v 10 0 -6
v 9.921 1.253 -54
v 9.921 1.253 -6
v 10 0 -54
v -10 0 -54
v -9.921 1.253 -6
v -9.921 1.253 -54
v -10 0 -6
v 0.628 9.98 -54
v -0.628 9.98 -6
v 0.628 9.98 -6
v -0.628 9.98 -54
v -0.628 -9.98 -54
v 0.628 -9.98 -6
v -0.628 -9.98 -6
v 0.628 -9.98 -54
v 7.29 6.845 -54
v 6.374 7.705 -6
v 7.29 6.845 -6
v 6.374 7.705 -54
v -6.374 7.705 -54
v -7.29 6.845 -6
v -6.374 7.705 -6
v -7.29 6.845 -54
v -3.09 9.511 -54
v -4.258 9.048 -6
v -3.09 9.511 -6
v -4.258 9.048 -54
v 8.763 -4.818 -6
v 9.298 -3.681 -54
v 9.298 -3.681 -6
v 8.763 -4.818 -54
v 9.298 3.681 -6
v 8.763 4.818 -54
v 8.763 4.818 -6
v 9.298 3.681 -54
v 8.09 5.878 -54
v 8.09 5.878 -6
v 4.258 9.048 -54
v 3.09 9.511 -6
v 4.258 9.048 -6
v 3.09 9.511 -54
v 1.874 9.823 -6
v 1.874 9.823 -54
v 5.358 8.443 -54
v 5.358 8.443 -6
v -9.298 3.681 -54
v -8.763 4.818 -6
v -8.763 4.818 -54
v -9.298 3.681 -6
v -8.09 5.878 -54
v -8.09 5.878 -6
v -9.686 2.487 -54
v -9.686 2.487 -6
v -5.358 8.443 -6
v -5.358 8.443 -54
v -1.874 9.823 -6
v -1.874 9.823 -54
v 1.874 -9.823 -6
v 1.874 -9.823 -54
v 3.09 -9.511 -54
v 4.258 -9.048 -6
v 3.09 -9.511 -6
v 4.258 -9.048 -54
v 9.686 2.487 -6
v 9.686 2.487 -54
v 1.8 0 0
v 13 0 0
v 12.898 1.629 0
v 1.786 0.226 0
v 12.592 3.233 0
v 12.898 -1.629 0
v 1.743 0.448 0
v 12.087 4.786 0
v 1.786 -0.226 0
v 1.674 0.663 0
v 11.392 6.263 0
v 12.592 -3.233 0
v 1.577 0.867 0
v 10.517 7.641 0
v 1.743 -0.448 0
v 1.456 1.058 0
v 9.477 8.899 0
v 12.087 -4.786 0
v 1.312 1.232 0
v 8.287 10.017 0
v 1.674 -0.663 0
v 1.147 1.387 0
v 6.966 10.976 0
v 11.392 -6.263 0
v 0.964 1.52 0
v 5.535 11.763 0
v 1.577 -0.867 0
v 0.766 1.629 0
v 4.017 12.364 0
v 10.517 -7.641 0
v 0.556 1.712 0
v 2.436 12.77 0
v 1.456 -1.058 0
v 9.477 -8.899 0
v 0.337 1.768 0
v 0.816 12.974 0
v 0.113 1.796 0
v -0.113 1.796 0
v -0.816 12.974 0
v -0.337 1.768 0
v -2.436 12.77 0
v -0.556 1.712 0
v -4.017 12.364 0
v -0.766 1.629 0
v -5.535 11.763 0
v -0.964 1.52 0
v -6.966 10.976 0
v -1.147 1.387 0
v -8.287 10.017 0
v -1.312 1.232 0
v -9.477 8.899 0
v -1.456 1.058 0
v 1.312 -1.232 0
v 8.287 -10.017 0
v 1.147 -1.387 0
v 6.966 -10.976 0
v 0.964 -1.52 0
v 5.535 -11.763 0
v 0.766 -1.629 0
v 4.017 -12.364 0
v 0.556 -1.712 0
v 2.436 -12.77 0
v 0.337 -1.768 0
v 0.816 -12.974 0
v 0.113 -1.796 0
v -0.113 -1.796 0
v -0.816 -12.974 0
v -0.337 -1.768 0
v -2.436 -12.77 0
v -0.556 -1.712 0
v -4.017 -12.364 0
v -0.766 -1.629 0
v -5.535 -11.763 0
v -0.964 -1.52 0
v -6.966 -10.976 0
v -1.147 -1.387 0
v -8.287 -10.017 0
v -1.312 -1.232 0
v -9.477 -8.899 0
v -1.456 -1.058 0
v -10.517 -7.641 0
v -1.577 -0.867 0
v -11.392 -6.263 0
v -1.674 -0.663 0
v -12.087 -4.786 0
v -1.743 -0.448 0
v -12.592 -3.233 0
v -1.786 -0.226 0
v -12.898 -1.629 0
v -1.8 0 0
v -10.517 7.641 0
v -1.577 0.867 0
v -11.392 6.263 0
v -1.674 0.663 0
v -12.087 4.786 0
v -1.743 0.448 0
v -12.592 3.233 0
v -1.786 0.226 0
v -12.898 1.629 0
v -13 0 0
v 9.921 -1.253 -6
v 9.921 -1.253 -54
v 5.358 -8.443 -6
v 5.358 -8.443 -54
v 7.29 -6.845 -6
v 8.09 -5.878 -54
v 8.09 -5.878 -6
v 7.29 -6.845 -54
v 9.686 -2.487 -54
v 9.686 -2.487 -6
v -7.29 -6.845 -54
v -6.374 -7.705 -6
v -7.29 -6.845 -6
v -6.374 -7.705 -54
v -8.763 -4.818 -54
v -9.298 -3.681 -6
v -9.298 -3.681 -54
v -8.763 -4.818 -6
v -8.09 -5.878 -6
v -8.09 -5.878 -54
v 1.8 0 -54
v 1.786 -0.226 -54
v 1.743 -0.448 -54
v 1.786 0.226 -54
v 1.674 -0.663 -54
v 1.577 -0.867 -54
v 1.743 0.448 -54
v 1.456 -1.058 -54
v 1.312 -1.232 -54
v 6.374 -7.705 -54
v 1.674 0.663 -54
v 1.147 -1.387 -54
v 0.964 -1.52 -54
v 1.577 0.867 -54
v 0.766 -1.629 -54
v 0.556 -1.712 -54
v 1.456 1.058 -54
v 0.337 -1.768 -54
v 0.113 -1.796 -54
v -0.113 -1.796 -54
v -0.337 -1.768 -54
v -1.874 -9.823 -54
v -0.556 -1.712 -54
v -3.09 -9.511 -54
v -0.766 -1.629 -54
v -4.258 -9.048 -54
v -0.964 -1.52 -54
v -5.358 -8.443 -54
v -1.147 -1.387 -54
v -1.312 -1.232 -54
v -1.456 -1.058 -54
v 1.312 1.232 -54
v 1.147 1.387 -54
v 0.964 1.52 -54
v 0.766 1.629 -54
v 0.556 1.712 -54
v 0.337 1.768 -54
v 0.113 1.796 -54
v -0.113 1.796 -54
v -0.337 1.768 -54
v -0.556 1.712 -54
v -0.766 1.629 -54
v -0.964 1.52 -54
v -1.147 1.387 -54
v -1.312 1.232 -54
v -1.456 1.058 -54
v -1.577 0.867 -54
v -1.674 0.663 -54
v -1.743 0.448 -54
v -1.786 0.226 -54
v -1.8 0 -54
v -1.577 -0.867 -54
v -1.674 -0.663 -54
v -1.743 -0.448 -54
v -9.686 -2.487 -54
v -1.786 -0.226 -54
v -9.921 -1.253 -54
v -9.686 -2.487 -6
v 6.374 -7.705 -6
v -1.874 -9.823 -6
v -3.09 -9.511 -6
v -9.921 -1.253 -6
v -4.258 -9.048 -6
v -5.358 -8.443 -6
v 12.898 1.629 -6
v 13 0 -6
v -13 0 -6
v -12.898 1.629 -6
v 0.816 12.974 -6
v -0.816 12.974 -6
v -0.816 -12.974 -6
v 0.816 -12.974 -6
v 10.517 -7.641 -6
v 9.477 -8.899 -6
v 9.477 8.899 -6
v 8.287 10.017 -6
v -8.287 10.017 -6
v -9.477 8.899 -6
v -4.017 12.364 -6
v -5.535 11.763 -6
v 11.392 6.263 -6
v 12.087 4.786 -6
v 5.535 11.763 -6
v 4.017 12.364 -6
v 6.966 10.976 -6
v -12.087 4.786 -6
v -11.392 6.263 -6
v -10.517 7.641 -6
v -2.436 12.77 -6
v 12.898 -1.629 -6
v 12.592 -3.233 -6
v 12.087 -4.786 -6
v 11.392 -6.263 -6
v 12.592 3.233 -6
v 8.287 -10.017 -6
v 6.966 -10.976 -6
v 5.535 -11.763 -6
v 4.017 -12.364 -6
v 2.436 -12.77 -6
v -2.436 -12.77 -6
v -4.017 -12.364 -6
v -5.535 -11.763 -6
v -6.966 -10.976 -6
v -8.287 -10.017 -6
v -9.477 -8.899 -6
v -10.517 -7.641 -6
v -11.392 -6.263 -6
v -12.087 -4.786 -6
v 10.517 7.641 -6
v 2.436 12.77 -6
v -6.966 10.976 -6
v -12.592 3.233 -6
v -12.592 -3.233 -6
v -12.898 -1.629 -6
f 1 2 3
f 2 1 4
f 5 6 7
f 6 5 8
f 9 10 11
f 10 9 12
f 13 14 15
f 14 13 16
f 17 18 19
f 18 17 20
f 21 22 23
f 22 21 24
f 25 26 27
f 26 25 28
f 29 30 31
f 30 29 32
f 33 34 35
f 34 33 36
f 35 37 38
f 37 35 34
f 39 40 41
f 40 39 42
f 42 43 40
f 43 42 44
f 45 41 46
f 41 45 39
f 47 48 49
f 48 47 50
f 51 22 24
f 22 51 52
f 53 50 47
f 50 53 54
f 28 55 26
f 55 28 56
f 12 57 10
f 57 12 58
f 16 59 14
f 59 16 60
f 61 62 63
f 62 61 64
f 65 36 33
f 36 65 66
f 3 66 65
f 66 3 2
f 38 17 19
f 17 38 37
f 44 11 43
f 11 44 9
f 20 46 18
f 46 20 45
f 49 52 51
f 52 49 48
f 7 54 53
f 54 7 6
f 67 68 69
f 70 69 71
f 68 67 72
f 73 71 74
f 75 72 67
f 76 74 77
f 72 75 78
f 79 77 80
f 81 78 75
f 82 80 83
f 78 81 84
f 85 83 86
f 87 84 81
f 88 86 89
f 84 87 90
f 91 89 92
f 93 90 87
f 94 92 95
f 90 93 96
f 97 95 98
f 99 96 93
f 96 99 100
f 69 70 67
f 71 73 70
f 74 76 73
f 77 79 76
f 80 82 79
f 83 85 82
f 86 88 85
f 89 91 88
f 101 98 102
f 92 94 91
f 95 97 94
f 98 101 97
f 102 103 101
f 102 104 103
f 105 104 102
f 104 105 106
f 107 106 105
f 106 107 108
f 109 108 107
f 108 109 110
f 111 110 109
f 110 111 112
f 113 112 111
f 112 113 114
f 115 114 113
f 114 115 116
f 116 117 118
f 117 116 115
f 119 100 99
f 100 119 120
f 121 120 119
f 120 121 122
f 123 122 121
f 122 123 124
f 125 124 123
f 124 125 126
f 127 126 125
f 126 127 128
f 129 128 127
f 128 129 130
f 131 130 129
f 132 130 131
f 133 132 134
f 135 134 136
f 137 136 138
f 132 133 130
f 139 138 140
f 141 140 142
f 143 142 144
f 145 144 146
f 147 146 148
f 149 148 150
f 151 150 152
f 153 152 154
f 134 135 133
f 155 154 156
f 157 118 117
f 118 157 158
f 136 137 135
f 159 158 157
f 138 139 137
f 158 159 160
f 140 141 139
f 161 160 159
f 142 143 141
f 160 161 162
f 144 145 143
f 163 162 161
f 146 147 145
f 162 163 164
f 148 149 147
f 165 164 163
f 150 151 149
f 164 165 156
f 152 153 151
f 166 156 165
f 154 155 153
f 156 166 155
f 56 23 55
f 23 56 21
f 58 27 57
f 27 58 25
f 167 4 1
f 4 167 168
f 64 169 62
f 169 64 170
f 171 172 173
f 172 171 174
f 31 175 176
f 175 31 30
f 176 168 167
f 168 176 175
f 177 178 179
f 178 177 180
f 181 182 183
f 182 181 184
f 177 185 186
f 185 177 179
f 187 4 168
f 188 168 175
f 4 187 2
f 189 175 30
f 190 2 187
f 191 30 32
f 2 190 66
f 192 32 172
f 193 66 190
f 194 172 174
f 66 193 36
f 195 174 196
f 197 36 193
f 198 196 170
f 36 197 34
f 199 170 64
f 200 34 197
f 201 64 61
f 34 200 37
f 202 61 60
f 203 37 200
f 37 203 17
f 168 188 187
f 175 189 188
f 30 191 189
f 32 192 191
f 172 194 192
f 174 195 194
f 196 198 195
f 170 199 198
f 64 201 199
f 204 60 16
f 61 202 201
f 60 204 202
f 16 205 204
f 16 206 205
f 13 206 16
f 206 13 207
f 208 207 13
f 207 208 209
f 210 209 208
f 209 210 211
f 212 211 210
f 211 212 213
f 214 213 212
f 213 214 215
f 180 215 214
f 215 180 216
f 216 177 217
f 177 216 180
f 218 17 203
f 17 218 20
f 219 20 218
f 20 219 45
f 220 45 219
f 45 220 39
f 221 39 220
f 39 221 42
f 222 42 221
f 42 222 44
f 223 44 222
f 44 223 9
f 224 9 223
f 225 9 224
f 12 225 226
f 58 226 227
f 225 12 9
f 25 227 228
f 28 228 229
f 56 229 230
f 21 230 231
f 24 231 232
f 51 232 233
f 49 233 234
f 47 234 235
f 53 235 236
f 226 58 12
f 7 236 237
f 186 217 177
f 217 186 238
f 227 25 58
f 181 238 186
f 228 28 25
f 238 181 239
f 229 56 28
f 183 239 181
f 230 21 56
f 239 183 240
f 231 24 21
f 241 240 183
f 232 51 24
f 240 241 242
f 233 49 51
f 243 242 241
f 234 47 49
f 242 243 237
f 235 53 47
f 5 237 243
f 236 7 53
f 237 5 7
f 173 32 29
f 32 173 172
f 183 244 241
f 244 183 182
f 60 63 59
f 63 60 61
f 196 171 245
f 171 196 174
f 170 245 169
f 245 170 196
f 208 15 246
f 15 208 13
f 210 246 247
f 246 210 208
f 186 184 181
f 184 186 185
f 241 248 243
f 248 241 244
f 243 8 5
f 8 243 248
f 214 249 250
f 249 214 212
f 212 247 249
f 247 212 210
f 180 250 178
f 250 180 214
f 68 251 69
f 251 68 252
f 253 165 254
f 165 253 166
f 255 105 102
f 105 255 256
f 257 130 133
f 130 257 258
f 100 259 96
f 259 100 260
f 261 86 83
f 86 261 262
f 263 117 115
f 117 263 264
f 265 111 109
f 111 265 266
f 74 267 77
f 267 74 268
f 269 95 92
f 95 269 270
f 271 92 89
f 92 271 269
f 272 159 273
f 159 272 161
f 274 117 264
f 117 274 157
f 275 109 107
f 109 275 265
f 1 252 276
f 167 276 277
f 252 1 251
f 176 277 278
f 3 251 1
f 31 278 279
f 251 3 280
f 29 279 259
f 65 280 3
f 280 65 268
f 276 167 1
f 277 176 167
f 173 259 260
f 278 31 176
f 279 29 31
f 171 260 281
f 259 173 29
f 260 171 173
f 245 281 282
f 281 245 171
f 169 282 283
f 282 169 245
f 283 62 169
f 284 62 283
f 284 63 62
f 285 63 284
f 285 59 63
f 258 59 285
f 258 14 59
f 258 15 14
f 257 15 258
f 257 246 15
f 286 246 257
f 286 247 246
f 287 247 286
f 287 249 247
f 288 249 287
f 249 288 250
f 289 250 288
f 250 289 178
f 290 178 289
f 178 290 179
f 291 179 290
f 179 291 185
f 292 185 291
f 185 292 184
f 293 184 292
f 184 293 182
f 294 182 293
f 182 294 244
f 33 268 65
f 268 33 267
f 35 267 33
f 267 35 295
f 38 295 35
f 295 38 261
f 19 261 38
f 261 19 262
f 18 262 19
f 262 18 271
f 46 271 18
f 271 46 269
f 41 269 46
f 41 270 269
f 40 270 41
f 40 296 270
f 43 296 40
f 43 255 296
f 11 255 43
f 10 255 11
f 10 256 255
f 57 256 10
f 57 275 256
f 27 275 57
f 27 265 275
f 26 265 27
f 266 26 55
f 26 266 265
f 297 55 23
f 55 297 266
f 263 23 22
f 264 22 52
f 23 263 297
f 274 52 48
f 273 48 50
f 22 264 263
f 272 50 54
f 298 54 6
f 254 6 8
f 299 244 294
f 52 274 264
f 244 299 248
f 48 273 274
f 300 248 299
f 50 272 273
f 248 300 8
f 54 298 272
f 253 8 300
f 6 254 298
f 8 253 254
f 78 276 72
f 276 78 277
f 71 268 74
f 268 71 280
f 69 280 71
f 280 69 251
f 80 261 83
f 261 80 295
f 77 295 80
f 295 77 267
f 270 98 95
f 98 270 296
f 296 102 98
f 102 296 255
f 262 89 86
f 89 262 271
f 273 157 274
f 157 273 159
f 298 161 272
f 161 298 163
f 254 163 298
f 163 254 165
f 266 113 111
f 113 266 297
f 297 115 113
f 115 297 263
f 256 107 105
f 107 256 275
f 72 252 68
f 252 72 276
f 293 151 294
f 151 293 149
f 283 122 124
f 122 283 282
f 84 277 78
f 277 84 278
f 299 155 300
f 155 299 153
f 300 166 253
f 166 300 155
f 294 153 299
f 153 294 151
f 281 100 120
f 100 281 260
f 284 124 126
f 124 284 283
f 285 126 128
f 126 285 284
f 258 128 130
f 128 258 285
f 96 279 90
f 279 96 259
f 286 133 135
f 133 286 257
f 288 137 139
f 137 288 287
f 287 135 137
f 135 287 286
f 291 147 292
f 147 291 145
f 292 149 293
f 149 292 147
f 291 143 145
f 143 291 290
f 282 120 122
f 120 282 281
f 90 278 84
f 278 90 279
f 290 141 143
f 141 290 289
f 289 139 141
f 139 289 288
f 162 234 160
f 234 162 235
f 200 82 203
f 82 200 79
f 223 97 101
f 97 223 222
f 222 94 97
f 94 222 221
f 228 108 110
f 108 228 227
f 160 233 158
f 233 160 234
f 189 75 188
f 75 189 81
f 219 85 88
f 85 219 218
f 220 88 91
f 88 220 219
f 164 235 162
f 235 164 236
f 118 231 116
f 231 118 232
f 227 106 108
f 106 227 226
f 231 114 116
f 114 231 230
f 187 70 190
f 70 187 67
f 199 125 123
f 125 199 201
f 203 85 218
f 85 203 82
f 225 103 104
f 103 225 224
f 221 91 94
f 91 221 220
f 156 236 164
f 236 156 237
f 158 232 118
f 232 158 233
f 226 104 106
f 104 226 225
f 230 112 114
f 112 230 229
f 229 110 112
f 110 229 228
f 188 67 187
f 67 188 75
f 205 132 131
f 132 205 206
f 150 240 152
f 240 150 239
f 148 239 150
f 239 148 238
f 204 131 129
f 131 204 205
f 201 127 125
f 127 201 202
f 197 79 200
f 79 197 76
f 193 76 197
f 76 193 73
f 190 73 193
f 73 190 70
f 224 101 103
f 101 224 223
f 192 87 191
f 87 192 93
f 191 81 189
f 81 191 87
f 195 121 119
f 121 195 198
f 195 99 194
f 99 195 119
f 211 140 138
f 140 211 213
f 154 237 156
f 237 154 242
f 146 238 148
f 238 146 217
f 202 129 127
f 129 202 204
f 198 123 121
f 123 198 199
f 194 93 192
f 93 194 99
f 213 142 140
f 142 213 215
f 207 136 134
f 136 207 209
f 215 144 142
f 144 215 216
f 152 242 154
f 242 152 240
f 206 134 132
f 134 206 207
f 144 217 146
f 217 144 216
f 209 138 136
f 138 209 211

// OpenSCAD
$fn = 50;


difference() {
	union() {
		translate(v = [0, 0, -54.0000000000]) {
			cylinder(h = 54, r = 10.0000000000);
		}
		translate(v = [0, 0, -6.0000000000]) {
			cylinder(h = 6, r = 13.0000000000);
		}
	}
	union() {
		#translate(v = [0, 0, -54]) {
			cylinder(h = 54, r = 1.8000000000);
		}
	}
}
